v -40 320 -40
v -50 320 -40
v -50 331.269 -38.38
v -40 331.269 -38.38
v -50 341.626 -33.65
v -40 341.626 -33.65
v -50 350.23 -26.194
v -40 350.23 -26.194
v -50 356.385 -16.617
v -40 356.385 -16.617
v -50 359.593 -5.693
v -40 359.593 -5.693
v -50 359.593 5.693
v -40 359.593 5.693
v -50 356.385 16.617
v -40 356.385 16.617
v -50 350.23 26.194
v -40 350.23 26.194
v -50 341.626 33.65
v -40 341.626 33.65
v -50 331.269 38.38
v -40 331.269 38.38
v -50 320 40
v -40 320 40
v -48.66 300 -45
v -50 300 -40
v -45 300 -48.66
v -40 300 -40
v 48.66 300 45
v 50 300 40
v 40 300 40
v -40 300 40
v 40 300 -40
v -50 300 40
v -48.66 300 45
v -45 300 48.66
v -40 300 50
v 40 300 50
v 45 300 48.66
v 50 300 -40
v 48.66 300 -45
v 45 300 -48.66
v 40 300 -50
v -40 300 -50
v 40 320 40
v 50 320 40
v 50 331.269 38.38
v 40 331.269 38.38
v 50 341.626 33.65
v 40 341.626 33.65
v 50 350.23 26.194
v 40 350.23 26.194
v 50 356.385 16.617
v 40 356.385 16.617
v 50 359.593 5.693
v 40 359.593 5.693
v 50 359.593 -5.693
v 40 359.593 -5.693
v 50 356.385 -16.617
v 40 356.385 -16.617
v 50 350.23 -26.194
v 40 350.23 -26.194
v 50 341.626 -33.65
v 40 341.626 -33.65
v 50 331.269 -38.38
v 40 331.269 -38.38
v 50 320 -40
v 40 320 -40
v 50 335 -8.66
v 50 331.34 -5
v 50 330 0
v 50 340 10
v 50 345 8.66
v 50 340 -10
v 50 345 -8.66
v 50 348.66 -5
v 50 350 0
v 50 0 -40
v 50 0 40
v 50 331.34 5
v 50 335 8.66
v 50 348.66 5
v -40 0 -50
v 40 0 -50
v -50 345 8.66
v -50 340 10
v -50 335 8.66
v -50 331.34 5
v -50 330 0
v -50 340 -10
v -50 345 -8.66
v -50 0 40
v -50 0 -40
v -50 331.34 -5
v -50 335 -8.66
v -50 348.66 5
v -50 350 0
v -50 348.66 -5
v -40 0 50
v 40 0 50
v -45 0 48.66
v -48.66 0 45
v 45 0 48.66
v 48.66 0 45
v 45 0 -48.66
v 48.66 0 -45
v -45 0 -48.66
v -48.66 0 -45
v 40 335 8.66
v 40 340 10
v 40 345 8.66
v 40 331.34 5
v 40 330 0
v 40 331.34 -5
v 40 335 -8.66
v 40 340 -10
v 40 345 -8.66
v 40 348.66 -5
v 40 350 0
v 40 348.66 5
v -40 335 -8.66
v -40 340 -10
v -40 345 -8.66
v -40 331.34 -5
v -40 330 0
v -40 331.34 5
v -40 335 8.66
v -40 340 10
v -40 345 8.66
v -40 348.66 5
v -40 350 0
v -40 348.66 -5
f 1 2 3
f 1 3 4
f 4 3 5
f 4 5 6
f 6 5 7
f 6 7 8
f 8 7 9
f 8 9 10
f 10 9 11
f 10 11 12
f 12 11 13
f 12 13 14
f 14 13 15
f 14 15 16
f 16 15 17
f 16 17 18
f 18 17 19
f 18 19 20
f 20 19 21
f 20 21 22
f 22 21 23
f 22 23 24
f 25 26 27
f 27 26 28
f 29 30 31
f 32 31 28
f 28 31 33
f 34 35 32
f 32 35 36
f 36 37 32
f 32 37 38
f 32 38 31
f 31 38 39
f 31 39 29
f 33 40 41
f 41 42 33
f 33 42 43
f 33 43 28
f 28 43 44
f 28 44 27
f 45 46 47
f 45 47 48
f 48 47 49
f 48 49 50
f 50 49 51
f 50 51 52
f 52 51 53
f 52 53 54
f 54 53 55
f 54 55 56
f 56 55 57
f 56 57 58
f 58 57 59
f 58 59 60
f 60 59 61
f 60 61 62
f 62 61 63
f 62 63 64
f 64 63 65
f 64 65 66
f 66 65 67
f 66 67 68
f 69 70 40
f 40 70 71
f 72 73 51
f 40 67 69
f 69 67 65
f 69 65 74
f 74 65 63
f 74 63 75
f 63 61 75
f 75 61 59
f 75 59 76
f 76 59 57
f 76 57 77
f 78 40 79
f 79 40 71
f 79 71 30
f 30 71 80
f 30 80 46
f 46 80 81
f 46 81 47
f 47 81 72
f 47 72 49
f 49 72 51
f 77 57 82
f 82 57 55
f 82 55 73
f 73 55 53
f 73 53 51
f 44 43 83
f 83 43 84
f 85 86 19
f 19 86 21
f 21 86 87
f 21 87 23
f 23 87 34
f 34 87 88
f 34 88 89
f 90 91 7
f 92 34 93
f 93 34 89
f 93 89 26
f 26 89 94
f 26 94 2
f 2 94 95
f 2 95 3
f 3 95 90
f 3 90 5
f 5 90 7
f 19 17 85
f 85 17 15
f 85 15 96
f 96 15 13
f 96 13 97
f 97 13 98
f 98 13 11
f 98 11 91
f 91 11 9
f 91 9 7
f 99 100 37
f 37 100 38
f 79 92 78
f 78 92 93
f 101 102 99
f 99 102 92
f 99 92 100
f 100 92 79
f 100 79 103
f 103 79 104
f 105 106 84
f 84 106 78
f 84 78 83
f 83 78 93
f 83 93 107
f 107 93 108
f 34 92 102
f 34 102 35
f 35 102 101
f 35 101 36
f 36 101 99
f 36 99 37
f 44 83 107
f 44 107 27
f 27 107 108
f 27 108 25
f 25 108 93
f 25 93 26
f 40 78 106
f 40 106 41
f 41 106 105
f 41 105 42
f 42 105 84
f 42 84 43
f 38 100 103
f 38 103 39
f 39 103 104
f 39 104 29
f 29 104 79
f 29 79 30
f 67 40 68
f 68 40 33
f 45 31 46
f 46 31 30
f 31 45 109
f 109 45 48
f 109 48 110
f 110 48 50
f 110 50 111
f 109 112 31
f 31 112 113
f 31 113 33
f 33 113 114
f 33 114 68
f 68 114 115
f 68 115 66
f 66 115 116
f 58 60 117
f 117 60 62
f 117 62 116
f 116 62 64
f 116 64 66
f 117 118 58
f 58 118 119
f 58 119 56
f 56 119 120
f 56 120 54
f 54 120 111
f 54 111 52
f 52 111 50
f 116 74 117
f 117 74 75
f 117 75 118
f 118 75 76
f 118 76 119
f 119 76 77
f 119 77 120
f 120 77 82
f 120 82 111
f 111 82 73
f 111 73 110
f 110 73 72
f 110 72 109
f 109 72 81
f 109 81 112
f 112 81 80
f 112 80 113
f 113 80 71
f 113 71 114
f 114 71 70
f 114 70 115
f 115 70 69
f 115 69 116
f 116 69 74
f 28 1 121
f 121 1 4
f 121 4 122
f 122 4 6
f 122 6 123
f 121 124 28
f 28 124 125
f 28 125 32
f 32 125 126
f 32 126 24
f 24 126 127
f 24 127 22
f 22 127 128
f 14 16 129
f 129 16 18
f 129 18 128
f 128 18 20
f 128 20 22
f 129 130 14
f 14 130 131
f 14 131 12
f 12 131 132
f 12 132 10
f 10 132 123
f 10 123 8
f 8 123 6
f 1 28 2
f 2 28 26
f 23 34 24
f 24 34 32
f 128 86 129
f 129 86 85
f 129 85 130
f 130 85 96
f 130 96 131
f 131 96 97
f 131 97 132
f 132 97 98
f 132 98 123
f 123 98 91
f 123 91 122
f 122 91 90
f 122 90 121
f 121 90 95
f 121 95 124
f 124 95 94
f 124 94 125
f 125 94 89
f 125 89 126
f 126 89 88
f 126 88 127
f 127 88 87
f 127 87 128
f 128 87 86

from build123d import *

# Parameters (mm, degrees)
SKETCH1_W                   = 100
SKETCH1_H                   = 100
BOSS_EXTRUDE1_DEPTH         = 300
FILLET1_R                   = 10
SKETCH5_W                   = 80
SKETCH5_H                   = 60
SKETCH5_R                   = 10
BOSS_EXTRUDE2_DEPTH         = 10
FILLET2_RADIUS              = 40
FILLET2_LENGTH              = 10
FILLET2_OF_MIRROR1_2_RADIUS = 40
FILLET2_OF_MIRROR1_2_LENGTH = 10


with BuildPart() as part:
    # Sketch1 → Boss-Extrude1 (new body)
    with BuildSketch(Plane(origin=(0, 0, 0), x_dir=(1, 0, 0), z_dir=(0, 1, 0))):
        Rectangle(SKETCH1_W, SKETCH1_H)
    extrude(amount=BOSS_EXTRUDE1_DEPTH)

    # Fillet1
    fillet1_edges = [part.edges().sort_by_distance(p)[0] for p in [
        (50, 150, 50),
        (-50, 150, 50),
        (-50, 150, -50),
        (50, 150, -50),
    ]]
    fillet(fillet1_edges, radius=FILLET1_R)

    # Sketch5 → Boss-Extrude2 (add)
    with BuildSketch(Plane(origin=(50, 0, 0), x_dir=(0, 0, -1), z_dir=(1, 0, 0))):
        with Locations((0, 330)):
            Rectangle(SKETCH5_W, SKETCH5_H)
        with Locations((0, 340)):
            Circle(SKETCH5_R, mode=Mode.SUBTRACT)
    boss_extrude2 = extrude(amount=-BOSS_EXTRUDE2_DEPTH)

    # Fillet2: full round fillet: the end face becomes a half cylinder, R = half its width
    fillet2_face = Plane((45, 360, 0), x_dir=(-1, 0, 0), z_dir=(0, 1, 0))  # on the end face: x along it, z out of the body
    fillet2_slab = fillet2_face.offset(-FILLET2_RADIUS / 2) * Box(FILLET2_LENGTH, 2 * FILLET2_RADIUS, FILLET2_RADIUS, mode=Mode.PRIVATE)  # the body's end, R deep
    fillet2_round = Plane((45, 320, 0), x_dir=(0, 1, 0), z_dir=(-1, 0, 0)) * Cylinder(FILLET2_RADIUS, FILLET2_LENGTH, mode=Mode.PRIVATE)  # its axis R under the face
    add(fillet2_slab - fillet2_round, mode=Mode.SUBTRACT)

    # Mirror1: Boss-Extrude2 across plane
    add(boss_extrude2.mirror(Plane(origin=(0, 0, 0), x_dir=(0, 0, 1), z_dir=(1, 0, 0))))

    # Fillet2 of Mirror1 2: full round fillet: the end face becomes a half cylinder, R = half its width
    fillet2_of_mirror1_2_face = Plane((-45, 360, 0), x_dir=(1, 0, 0), z_dir=(0, 1, 0))  # on the end face: x along it, z out of the body
    fillet2_of_mirror1_2_slab = fillet2_of_mirror1_2_face.offset(-FILLET2_OF_MIRROR1_2_RADIUS / 2) * Box(FILLET2_OF_MIRROR1_2_LENGTH, 2 * FILLET2_OF_MIRROR1_2_RADIUS, FILLET2_OF_MIRROR1_2_RADIUS, mode=Mode.PRIVATE)  # the body's end, R deep
    fillet2_of_mirror1_2_round = Plane((-45, 320, 0), x_dir=(0, 1, 0), z_dir=(1, 0, 0)) * Cylinder(FILLET2_OF_MIRROR1_2_RADIUS, FILLET2_OF_MIRROR1_2_LENGTH, mode=Mode.PRIVATE)  # its axis R under the face
    add(fillet2_of_mirror1_2_slab - fillet2_of_mirror1_2_round, mode=Mode.SUBTRACT)


solid = part.part
